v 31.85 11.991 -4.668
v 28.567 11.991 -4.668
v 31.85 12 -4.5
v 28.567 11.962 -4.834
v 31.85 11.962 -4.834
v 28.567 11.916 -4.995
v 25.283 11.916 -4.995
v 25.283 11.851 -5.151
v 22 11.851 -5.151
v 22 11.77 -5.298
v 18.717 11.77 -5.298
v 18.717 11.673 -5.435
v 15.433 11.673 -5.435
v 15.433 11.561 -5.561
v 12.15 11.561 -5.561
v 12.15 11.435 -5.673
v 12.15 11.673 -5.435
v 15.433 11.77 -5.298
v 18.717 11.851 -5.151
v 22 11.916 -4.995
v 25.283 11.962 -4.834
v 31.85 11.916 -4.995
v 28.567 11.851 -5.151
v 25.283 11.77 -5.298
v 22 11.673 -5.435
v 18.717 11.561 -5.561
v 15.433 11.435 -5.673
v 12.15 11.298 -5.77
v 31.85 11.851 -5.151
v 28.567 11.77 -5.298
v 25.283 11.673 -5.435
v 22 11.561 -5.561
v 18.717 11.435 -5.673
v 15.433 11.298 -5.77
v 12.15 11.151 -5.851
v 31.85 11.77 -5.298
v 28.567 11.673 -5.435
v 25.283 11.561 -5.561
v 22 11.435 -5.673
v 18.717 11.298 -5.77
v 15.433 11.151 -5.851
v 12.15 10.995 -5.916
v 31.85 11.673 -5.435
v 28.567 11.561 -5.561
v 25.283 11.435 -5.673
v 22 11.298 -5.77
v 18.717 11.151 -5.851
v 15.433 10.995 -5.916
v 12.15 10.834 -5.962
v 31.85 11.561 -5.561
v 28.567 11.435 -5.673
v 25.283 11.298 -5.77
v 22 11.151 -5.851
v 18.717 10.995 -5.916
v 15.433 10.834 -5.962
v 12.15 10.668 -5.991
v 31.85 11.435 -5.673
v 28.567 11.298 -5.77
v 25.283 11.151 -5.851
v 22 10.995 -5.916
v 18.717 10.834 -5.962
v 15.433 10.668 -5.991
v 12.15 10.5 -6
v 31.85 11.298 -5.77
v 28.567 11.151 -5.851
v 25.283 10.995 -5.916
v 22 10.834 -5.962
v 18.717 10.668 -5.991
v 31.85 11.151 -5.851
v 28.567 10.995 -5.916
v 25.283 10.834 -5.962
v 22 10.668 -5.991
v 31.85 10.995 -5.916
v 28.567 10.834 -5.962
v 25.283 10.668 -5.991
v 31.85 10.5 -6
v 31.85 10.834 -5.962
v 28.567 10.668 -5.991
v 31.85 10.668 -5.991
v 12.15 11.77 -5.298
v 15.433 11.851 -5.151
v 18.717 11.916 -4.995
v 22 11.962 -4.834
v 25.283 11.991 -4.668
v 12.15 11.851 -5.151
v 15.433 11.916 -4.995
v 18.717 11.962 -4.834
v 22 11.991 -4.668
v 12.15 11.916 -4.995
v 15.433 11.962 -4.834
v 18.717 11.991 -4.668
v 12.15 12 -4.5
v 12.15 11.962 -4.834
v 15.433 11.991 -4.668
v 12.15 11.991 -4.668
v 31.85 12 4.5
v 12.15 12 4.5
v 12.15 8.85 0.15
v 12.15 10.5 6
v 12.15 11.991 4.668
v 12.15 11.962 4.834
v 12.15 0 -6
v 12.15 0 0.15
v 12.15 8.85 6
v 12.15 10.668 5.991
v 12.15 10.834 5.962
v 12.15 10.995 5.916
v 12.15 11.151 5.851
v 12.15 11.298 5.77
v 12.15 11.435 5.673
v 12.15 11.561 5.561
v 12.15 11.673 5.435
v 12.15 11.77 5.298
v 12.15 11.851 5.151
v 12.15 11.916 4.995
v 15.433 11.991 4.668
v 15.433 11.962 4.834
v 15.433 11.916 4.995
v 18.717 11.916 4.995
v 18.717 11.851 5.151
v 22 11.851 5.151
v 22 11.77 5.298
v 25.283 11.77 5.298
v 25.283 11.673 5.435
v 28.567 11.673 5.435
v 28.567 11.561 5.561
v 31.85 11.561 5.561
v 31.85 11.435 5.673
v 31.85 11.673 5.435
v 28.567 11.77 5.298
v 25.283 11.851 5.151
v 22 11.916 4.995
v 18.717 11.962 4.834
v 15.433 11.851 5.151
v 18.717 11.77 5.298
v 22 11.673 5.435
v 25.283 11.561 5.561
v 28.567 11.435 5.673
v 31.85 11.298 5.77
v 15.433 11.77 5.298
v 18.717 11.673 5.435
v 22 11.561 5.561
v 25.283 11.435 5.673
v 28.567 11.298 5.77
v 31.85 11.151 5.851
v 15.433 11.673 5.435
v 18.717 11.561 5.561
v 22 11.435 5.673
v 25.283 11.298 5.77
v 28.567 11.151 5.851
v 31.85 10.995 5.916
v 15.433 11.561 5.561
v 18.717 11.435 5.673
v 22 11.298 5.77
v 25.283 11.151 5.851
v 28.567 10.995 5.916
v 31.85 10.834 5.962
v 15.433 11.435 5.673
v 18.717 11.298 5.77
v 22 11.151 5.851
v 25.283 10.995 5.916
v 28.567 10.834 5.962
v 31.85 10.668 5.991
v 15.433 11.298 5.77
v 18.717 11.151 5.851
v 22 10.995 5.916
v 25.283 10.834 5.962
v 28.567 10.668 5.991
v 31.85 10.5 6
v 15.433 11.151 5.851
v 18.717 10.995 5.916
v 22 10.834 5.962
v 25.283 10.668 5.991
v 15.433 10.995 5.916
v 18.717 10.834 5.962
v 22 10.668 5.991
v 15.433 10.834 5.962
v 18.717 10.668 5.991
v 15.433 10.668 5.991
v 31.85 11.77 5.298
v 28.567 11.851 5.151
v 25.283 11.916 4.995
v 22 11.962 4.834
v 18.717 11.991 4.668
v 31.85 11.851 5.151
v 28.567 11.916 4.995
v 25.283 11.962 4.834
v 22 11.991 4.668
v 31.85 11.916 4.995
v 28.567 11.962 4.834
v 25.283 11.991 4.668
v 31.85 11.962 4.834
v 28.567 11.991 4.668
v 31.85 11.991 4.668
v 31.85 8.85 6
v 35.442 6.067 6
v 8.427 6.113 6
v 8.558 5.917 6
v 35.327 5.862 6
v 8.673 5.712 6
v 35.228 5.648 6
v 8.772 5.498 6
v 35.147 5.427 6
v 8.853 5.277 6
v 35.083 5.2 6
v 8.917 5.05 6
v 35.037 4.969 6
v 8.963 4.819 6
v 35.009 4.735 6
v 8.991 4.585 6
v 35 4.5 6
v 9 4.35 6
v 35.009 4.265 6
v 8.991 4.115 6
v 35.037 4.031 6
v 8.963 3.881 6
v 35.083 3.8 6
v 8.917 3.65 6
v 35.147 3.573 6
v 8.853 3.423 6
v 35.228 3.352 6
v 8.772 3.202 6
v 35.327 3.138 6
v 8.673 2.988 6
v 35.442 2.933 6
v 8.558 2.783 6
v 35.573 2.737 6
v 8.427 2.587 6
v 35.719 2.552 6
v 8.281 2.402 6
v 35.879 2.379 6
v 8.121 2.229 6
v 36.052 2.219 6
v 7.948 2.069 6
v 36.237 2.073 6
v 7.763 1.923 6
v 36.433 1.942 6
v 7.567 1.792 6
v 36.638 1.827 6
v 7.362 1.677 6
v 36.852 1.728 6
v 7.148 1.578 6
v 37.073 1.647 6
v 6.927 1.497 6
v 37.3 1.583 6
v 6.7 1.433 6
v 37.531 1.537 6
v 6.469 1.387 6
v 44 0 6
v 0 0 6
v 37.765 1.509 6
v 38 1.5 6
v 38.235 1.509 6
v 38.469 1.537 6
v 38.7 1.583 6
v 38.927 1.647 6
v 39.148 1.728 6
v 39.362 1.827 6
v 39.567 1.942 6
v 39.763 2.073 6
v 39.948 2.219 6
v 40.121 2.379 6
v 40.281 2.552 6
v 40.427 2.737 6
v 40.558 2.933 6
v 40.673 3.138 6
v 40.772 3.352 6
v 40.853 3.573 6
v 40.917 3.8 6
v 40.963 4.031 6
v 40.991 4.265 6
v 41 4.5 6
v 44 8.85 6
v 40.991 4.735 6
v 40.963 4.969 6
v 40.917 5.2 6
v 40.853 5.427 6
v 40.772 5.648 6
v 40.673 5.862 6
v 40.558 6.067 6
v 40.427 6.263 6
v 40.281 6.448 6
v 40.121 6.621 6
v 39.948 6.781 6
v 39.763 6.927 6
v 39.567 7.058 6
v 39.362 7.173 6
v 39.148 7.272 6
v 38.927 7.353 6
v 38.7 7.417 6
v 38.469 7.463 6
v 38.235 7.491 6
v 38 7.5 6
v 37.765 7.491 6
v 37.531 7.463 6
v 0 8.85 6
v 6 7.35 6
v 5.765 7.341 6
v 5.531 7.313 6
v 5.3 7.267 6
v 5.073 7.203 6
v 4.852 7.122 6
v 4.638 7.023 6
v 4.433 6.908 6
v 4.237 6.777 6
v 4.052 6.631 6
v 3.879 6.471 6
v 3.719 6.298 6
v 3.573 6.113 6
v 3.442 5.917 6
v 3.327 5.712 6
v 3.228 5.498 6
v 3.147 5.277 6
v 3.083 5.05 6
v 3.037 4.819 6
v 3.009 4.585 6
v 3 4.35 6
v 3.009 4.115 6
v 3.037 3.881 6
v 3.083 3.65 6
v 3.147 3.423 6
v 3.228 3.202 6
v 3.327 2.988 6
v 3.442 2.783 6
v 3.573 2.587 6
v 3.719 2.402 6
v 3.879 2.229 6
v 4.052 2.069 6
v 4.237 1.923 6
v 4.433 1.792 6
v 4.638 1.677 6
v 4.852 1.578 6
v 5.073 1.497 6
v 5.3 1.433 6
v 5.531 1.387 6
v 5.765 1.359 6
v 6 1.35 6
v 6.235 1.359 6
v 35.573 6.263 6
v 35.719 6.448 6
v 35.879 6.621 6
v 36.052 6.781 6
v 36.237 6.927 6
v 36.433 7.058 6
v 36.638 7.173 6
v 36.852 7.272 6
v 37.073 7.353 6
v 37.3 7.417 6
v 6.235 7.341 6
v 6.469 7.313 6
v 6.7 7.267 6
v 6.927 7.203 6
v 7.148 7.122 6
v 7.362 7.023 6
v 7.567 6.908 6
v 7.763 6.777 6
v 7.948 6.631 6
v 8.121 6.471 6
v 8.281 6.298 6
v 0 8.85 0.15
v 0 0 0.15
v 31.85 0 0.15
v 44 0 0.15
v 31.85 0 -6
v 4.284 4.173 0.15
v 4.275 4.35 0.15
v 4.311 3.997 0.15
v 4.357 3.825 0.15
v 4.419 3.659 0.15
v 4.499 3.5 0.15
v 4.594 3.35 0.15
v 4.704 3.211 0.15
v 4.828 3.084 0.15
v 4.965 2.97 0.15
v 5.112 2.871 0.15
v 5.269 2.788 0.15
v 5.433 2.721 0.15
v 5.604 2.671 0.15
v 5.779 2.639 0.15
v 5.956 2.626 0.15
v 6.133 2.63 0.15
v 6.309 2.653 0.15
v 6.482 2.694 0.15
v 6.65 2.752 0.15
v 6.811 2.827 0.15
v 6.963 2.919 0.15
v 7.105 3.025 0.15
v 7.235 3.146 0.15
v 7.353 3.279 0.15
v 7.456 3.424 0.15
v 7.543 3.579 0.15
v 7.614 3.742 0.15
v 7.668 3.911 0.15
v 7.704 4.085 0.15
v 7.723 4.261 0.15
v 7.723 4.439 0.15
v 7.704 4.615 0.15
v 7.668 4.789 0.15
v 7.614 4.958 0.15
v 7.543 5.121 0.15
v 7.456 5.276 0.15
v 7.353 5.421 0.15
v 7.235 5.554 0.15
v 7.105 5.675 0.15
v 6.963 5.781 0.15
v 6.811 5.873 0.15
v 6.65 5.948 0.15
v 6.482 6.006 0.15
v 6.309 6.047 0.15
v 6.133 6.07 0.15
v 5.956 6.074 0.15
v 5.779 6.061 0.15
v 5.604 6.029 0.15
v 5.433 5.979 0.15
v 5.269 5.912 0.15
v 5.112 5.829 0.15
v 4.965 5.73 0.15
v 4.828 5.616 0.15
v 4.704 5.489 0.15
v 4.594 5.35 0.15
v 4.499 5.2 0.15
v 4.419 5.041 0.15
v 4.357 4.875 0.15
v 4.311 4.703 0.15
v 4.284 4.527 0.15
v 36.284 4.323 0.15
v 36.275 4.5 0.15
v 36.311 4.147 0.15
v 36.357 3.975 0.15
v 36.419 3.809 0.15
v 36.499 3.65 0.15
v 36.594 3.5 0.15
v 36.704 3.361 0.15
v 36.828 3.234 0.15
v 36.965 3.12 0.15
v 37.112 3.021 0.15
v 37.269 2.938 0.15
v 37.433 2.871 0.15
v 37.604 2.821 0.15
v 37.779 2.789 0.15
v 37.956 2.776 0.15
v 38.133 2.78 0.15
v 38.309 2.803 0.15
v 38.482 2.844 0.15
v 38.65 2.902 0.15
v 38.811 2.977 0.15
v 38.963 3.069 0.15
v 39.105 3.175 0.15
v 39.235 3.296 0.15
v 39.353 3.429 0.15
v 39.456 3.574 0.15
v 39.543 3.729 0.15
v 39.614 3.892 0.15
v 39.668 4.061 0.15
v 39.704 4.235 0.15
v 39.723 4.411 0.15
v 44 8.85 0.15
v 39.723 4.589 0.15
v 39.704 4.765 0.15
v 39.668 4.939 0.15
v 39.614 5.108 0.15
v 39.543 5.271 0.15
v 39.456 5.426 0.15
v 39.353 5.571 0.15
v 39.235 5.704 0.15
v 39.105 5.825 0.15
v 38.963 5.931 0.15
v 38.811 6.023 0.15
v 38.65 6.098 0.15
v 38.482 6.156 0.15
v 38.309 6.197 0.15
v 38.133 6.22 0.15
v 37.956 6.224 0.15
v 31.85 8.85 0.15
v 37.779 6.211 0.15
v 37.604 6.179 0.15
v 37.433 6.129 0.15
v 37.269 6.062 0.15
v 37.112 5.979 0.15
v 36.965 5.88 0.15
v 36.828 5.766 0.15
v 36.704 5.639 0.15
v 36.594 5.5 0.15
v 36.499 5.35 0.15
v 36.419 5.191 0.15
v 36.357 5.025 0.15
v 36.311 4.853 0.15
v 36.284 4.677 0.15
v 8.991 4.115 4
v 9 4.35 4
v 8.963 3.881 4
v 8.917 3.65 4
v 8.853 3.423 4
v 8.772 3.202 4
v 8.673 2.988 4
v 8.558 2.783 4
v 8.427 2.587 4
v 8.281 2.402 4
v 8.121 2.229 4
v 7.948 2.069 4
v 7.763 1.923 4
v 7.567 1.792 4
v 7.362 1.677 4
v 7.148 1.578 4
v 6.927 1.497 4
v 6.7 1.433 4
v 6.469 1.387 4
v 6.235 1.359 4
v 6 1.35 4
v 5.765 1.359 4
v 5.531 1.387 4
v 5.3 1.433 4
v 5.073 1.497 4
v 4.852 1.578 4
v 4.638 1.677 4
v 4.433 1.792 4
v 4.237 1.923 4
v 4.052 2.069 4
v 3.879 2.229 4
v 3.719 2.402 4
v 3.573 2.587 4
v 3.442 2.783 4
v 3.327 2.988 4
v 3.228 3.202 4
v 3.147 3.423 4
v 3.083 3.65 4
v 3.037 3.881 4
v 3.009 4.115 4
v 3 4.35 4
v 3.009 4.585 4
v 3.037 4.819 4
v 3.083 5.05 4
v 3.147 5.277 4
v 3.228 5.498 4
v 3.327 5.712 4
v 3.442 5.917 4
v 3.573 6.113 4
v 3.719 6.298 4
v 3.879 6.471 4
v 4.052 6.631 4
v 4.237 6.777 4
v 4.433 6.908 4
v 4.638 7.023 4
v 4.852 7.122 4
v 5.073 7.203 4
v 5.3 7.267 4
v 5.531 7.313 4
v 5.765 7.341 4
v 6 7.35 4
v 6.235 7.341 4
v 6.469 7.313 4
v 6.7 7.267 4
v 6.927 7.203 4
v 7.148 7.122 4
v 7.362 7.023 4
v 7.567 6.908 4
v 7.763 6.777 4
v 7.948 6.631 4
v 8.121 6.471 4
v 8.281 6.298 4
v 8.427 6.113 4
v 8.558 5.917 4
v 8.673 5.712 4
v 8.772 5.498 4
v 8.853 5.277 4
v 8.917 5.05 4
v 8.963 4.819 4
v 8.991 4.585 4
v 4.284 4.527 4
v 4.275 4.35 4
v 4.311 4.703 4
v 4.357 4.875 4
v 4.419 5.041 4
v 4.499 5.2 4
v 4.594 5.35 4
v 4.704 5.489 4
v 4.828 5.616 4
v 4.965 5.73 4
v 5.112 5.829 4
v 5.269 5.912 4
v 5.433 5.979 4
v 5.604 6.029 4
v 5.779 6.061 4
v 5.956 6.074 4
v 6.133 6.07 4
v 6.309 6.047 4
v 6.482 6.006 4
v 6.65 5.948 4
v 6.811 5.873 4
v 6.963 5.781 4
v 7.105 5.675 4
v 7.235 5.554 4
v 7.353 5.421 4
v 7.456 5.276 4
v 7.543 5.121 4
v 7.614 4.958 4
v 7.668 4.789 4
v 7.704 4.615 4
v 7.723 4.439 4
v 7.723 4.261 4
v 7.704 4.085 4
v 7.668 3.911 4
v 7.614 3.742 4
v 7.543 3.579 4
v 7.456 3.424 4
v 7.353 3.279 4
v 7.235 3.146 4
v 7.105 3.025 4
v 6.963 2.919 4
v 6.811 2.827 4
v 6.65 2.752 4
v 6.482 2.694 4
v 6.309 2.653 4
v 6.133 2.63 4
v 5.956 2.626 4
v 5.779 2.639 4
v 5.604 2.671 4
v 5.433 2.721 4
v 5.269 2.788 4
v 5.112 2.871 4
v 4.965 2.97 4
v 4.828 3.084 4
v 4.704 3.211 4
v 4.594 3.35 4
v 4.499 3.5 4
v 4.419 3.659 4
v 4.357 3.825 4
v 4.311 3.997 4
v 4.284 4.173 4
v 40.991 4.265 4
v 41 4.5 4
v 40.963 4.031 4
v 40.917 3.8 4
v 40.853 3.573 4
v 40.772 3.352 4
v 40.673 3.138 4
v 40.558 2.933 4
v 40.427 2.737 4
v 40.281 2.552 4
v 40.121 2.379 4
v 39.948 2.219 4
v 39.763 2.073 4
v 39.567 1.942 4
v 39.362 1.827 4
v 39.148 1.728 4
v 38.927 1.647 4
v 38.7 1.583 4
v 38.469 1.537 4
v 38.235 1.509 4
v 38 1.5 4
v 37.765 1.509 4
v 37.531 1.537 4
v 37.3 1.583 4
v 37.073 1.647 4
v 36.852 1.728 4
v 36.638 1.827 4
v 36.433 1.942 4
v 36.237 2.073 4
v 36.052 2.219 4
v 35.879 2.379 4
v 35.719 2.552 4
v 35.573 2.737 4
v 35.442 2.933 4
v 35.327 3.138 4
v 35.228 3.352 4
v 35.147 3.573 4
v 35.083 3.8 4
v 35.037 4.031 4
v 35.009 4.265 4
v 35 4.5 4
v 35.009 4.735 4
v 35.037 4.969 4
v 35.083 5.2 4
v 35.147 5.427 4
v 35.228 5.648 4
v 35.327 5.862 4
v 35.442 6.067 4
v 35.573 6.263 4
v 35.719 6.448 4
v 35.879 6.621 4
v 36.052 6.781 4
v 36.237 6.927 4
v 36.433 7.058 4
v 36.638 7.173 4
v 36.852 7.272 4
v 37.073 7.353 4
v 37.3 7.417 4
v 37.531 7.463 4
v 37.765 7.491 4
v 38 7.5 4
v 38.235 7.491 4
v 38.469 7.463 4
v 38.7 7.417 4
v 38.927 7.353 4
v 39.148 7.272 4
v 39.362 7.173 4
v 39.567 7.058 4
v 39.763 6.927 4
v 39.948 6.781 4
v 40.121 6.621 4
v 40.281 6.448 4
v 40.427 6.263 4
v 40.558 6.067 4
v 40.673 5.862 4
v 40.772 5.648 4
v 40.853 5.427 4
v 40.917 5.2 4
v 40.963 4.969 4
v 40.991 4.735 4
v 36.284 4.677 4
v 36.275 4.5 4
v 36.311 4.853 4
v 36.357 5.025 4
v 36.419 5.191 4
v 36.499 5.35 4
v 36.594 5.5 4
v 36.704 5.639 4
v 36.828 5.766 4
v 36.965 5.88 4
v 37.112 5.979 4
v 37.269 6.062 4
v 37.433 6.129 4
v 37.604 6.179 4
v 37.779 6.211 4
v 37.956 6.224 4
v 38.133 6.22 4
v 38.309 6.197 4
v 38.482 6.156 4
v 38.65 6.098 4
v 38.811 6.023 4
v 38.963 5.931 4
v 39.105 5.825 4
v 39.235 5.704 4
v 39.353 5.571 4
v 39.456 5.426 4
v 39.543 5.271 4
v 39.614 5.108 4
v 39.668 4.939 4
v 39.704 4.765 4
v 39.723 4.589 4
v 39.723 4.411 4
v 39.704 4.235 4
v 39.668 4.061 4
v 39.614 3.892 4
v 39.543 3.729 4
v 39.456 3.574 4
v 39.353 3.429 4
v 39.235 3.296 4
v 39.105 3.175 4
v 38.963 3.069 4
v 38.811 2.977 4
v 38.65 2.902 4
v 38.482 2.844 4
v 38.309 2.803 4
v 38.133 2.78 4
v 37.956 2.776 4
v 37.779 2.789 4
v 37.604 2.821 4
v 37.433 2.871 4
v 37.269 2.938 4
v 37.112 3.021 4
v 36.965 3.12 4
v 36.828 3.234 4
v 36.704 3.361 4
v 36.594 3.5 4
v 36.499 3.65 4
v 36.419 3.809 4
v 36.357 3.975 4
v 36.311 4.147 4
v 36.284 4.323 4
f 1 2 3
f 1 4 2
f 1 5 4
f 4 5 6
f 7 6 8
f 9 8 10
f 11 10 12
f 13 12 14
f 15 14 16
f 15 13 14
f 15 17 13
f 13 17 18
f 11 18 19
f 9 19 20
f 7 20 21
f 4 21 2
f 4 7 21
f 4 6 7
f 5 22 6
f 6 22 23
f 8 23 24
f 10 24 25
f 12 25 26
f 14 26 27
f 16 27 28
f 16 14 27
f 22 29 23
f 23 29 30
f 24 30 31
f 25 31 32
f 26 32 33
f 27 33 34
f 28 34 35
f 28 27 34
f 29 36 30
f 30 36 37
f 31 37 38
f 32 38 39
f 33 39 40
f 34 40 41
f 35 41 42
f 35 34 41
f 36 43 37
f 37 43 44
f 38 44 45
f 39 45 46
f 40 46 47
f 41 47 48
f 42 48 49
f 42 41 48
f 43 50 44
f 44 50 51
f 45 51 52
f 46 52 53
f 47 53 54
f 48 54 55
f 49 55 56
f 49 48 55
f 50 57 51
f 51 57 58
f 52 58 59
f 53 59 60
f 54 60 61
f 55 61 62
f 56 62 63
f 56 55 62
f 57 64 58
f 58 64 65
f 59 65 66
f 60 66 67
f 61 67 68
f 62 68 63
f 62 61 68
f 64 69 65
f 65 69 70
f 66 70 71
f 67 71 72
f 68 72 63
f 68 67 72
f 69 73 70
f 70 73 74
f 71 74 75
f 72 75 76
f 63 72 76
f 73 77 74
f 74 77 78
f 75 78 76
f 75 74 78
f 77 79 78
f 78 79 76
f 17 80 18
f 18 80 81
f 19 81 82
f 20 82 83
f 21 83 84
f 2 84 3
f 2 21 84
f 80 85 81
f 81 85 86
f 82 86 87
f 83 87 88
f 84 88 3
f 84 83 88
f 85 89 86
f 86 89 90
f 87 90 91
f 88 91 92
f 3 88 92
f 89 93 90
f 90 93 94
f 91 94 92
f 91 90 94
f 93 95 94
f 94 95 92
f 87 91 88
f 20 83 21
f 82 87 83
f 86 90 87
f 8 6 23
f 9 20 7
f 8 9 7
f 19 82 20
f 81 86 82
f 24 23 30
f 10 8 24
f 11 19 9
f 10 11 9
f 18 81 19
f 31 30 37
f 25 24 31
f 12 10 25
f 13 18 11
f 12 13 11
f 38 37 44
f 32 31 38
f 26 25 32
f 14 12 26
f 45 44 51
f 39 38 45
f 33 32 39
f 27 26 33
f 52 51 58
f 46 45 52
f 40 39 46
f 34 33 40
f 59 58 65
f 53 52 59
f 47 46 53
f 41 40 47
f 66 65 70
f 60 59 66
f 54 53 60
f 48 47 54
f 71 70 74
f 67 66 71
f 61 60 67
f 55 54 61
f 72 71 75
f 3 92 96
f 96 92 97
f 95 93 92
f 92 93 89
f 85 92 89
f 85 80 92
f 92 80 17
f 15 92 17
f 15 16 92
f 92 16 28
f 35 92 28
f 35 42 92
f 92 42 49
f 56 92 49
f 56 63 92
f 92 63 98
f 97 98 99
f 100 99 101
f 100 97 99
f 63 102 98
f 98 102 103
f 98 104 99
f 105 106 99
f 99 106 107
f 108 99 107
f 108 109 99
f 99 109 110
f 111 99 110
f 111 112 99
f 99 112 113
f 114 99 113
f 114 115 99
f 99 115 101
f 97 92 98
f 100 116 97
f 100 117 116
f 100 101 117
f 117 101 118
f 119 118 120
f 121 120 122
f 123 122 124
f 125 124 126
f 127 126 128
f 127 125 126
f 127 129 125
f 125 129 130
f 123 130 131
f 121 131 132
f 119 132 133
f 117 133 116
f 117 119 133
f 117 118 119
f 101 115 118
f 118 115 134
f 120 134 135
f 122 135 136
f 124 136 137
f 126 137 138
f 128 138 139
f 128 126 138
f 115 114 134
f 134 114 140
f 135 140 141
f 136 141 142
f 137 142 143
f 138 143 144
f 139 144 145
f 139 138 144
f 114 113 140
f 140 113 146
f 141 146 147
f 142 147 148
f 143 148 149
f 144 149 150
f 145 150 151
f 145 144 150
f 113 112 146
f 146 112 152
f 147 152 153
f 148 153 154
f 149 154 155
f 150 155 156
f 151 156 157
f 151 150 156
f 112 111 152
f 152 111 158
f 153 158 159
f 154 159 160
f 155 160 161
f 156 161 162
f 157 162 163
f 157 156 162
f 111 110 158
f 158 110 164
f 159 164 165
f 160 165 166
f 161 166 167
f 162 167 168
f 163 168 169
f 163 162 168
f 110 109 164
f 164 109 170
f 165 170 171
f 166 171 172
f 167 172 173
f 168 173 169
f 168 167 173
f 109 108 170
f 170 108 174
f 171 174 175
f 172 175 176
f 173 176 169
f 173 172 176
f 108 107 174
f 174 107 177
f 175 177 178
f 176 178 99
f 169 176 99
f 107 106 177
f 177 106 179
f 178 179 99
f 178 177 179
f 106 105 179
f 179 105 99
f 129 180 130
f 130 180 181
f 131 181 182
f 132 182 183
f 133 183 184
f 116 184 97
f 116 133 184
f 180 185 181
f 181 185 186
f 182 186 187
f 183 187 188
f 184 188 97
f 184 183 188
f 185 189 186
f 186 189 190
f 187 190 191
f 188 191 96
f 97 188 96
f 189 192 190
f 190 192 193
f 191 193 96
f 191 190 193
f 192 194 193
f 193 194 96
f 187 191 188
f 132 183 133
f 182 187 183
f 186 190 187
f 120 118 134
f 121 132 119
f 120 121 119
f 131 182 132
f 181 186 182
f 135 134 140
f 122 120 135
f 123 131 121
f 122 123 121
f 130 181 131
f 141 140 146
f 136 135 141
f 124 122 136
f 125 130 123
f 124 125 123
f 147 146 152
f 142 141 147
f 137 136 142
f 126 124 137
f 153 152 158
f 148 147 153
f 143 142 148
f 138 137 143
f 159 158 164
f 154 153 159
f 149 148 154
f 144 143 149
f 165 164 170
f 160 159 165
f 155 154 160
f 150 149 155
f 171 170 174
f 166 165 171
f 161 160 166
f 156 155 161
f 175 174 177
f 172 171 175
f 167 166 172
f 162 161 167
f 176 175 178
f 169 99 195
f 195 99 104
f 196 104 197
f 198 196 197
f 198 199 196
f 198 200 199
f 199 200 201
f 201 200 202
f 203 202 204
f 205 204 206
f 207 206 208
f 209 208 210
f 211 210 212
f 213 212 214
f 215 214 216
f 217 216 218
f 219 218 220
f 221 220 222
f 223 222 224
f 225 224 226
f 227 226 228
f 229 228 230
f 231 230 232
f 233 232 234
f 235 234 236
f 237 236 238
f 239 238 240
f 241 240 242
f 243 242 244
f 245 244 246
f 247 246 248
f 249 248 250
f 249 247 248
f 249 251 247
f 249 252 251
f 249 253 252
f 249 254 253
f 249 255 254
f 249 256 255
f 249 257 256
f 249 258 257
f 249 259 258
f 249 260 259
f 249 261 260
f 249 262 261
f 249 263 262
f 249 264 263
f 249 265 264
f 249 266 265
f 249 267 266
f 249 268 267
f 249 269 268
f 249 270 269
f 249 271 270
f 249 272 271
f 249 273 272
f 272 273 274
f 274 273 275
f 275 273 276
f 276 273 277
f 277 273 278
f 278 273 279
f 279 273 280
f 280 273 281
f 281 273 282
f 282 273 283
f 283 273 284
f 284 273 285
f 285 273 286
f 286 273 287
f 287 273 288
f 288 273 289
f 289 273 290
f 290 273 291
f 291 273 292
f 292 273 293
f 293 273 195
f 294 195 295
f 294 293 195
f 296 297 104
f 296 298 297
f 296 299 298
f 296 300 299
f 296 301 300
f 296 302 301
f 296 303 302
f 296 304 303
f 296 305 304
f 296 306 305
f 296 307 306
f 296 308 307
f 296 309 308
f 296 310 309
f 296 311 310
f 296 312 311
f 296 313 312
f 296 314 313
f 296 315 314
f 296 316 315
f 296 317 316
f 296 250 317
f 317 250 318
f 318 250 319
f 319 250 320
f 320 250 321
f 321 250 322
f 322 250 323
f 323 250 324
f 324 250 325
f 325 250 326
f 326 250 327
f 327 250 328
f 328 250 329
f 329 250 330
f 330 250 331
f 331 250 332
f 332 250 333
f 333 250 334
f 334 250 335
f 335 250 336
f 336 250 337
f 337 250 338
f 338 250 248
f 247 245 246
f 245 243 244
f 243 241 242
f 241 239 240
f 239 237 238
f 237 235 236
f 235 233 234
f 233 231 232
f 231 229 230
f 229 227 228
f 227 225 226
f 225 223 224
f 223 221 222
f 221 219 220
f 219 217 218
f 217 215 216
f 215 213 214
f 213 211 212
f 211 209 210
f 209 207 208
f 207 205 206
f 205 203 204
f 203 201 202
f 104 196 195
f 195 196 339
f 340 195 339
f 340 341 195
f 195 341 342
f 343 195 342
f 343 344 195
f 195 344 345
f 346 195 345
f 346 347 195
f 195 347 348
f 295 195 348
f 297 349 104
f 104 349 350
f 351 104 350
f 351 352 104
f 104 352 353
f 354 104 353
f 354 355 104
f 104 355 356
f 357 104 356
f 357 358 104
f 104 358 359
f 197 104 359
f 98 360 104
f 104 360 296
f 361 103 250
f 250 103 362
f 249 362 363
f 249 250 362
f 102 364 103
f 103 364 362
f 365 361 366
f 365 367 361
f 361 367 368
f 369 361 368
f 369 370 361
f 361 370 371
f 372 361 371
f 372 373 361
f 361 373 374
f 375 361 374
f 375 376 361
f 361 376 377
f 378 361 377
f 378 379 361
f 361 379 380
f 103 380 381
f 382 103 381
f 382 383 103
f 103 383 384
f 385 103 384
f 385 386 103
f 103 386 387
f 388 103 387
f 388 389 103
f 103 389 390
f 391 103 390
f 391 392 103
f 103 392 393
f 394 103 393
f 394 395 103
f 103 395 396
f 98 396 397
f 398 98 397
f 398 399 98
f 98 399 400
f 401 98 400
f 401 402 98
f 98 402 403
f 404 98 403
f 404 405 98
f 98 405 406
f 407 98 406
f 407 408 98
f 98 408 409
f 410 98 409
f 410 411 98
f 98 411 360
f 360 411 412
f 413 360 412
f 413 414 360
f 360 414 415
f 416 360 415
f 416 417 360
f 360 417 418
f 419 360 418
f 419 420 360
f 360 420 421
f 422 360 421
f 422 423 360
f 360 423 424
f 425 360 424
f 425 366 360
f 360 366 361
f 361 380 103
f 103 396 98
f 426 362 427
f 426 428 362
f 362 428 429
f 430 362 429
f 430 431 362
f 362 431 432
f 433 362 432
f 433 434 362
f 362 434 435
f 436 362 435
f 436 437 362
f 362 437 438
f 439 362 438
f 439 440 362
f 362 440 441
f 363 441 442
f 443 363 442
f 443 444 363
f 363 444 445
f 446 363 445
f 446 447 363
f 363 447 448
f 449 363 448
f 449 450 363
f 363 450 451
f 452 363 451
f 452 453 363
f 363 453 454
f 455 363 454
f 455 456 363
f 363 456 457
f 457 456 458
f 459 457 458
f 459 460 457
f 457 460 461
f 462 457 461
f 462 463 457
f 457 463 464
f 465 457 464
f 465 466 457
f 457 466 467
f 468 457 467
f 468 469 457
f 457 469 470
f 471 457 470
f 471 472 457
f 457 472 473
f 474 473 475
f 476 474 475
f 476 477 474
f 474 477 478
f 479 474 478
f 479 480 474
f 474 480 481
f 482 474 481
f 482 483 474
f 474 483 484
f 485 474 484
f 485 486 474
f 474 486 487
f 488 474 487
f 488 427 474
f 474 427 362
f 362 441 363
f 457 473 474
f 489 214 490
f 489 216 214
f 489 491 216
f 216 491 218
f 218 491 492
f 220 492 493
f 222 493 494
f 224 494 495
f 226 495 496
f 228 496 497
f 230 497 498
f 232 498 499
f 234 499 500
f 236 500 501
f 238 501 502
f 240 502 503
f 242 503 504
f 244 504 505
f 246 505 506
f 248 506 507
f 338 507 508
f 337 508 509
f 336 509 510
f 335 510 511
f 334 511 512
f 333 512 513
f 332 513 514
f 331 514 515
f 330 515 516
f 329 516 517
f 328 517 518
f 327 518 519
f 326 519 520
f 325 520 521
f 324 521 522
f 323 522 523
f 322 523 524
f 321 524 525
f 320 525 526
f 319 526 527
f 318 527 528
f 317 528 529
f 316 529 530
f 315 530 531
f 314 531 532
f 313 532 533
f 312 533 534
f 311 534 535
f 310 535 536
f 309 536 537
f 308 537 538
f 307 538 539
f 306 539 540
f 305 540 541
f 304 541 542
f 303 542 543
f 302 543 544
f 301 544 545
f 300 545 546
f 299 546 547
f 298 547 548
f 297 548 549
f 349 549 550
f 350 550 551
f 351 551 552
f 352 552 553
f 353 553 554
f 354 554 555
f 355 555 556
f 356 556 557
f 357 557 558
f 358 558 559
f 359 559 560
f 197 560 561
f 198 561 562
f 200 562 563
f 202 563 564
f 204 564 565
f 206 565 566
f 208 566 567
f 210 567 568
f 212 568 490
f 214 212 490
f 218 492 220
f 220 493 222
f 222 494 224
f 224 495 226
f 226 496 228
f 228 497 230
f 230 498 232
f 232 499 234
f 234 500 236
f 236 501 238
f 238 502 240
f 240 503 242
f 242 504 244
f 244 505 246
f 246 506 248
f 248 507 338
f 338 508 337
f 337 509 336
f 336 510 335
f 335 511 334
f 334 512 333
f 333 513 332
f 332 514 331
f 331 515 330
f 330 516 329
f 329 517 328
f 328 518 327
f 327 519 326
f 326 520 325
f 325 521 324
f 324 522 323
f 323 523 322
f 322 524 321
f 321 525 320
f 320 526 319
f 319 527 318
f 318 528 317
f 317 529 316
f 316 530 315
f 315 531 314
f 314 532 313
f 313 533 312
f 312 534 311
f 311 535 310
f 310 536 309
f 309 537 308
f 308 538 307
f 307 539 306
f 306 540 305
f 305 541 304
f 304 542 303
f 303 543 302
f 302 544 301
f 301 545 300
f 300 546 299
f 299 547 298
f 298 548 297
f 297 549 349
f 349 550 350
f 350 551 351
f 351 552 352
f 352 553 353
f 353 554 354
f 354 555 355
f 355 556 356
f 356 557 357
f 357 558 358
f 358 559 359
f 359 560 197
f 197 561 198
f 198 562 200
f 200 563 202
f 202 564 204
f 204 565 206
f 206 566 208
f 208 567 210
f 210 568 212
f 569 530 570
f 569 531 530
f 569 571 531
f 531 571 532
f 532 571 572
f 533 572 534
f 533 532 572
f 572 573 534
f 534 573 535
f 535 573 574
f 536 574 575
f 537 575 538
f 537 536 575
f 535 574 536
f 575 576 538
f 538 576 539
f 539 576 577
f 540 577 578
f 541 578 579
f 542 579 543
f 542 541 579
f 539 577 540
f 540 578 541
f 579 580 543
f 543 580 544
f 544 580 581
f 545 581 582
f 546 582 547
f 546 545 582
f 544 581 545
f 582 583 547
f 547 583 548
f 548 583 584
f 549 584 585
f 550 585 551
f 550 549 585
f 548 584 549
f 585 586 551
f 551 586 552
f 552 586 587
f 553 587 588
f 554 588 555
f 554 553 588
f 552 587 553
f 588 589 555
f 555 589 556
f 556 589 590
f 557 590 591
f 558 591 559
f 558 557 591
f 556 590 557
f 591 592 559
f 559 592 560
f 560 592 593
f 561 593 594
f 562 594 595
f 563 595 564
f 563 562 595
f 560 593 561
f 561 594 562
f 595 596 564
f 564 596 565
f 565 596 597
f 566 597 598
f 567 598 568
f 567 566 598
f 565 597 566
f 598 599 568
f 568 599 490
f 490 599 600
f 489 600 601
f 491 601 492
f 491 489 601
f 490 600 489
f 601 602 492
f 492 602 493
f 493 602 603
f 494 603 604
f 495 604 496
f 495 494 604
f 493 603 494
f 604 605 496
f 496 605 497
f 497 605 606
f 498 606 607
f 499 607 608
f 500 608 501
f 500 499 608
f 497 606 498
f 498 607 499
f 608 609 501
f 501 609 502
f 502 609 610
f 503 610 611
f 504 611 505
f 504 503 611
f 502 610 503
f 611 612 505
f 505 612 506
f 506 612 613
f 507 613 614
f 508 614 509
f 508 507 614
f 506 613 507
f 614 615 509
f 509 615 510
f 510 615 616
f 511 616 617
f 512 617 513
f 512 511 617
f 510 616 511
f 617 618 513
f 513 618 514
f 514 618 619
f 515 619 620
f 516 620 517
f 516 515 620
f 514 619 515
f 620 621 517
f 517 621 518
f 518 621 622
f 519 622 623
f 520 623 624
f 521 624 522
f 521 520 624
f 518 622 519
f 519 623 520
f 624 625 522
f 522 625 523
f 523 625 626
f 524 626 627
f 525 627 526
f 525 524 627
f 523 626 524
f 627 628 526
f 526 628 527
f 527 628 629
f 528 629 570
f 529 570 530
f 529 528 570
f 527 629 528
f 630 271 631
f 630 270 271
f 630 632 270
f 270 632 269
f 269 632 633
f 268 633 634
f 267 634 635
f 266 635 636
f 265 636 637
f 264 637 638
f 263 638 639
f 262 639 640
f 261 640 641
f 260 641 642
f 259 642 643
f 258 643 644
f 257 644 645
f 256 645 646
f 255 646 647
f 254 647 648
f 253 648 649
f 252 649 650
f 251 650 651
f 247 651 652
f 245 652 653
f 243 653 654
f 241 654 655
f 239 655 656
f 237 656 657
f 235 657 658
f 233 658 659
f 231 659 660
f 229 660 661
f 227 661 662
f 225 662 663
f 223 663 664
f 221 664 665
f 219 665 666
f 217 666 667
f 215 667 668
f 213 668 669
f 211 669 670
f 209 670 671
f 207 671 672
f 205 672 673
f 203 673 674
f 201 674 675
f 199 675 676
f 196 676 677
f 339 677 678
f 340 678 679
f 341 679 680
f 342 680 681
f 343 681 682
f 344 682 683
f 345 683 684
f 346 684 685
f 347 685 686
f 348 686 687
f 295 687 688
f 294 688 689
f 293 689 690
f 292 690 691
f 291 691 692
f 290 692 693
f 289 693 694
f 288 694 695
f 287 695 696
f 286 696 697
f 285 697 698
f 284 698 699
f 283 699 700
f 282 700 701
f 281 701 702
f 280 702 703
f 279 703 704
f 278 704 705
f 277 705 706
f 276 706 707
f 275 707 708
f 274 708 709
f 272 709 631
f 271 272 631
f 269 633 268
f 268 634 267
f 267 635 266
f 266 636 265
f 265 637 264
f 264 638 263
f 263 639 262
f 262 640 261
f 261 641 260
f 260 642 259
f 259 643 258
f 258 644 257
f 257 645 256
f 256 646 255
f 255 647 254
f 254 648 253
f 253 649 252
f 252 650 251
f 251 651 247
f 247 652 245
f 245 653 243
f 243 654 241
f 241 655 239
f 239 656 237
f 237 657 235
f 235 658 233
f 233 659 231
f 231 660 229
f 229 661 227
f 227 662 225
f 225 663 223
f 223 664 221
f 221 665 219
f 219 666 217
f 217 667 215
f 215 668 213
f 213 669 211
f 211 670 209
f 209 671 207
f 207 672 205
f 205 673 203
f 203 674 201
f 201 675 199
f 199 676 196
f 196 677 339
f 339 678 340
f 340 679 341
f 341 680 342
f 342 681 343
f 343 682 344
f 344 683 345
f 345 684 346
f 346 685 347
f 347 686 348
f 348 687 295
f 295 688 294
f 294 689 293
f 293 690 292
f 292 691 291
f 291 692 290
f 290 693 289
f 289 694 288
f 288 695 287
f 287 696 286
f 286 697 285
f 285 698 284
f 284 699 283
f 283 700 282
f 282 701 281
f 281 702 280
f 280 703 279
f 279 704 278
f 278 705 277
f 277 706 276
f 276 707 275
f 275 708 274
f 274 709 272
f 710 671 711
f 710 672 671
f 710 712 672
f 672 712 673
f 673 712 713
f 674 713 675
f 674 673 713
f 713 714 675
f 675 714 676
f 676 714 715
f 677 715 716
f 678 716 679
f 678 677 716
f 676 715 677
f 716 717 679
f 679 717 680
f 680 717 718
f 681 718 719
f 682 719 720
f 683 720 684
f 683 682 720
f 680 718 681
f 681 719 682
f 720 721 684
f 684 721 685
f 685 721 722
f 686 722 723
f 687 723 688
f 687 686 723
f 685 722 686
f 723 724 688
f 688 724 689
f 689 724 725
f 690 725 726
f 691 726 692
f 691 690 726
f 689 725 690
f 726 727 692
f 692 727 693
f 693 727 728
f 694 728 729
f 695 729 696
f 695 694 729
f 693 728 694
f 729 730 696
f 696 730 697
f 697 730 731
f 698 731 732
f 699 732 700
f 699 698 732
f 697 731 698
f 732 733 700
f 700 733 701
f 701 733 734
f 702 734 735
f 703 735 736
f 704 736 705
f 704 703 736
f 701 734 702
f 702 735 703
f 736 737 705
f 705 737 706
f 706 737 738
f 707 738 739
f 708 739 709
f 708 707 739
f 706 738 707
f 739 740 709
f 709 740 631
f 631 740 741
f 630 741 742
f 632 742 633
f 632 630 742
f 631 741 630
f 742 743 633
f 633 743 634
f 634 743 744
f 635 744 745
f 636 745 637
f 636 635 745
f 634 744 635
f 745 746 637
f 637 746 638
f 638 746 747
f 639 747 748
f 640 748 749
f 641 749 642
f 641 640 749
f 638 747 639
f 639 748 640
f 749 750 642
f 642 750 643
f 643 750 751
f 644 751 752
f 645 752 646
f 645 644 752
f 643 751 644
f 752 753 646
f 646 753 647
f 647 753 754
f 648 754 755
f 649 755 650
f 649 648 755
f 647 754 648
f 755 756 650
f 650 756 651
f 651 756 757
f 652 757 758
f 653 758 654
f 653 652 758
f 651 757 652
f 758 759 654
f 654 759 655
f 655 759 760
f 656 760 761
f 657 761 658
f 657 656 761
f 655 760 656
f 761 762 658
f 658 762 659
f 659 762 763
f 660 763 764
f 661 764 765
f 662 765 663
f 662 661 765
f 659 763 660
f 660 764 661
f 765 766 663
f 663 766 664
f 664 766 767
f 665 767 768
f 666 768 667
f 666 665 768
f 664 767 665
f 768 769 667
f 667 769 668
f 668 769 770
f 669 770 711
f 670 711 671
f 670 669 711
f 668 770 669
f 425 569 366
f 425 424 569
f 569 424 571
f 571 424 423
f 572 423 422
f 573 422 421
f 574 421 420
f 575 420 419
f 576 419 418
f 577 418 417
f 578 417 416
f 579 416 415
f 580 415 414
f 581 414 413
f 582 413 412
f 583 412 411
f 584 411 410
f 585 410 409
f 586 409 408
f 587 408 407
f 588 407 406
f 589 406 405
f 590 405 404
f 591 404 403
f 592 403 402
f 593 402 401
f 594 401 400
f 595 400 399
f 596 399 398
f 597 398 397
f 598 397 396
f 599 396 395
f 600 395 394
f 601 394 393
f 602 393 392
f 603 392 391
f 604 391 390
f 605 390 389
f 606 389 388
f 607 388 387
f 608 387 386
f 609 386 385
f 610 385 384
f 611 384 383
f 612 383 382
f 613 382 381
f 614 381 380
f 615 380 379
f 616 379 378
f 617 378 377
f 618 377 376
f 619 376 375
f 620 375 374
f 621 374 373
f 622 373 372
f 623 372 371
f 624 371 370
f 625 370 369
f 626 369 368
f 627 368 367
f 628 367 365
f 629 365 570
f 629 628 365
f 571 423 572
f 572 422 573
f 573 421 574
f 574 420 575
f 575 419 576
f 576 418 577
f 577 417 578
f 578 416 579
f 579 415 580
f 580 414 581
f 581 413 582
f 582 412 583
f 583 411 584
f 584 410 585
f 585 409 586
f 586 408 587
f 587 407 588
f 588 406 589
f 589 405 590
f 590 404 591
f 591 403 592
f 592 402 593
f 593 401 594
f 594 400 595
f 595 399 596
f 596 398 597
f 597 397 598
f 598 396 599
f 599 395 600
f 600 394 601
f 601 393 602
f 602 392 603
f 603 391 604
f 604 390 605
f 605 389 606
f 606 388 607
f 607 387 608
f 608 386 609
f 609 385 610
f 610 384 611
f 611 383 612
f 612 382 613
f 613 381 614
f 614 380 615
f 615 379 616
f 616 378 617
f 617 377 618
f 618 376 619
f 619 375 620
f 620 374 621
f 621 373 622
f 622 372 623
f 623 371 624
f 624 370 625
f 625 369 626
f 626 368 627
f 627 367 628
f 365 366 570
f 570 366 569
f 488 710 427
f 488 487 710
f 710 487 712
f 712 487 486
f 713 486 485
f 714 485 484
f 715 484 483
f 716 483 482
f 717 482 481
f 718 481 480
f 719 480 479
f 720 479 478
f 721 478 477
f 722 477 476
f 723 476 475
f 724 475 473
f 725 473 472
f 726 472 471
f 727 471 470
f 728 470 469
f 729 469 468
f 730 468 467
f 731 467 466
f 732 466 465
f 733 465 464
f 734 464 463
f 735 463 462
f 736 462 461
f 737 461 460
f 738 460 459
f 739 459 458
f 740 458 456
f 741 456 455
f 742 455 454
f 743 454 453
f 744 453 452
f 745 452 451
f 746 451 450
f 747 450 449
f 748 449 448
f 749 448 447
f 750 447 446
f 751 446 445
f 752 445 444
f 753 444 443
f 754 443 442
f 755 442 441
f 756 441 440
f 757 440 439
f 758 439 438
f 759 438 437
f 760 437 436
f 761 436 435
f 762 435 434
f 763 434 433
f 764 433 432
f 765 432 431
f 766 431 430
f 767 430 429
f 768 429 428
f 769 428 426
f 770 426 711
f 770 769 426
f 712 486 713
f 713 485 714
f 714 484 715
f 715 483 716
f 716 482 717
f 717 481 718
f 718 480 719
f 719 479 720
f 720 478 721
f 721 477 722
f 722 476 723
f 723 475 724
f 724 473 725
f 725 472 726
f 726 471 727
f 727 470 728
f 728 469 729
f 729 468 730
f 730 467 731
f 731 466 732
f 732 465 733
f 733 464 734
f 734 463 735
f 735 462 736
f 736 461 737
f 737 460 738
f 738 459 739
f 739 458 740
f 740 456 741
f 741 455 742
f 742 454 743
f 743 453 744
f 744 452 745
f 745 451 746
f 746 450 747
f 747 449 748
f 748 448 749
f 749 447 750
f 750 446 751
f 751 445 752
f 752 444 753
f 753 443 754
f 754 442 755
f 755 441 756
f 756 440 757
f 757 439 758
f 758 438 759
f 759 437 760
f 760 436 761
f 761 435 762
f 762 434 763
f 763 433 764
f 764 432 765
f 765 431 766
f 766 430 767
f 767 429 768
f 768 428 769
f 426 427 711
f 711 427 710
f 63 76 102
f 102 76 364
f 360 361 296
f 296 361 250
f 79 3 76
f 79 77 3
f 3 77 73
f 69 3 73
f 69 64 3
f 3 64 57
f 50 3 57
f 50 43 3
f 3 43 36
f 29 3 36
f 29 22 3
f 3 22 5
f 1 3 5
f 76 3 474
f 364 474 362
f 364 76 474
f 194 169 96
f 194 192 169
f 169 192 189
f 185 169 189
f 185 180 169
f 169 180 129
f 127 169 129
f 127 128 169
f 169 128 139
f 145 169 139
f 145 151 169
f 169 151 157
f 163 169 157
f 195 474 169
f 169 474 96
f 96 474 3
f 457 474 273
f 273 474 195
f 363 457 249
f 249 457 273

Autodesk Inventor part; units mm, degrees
ref_plane "YZ Plane" through (0, 0, 0) normal (1, 0, 0) x (0, 1, 0)
ref_plane "XZ Plane" through (0, 0, 0) normal (0, 1, 0) x (-1, 0, 0)
ref_plane "XY Plane" through (0, 0, 0) normal (0, 0, 1) x (1, 0, 0)
sketch "Sketch1" plane through (0, 0, 0) normal (0, 0, 1) x (1, 0, 0)
  line L0 (0, 0) -> (44, 0)
  line L1 (44, 0) -> (44, 8.85)
  line L2 (31.85, 12) -> (12.15, 12)
  line L3 (0, 8.85) -> (0, 0)
  line L4 (12.15, 12) -> (12.15, 8.85)
  line L5 (12.15, 8.85) -> (0, 8.85)
  line L6 (31.85, 12) -> (31.85, 8.85)
  line L7 (31.85, 8.85) -> (44, 8.85)
  dimension "d6" = 44
  dimension "d7" = 3.15
  dimension "d8" = 3.15
  dimension "d9" = 12.15
  dimension "d10" = 12.15
  dimension "d11" = 8.85
  dimension "d12" = 8.85
  dimension "d13" = 12
extrude "Extrusion1" add sketch "Sketch1" along normal blind 6
sketch "Sketch2" plane through (0, 0, 0) normal (0, 0, -1) x (-1, 0, 0)
  line L0 (-31.85, 12) -> (-12.15, 12) projected
  line L1 (0, 0) -> (-44, 0) projected
  line L2 (-31.85, 12) -> (-12, 12)
  line L3 (-12, 12) -> (-12, 0)
  line L4 (-12, 0) -> (-31.85, 0)
  line L5 (-31.85, 0) -> (-31.85, 12)
extrude "Extrusion2" add sketch "Sketch2" along normal blind 6
sketch "Sketch3" plane through (0, 0, 0) normal (0, 0, -1) x (-1, 0, 0)
  circle A0 centre (-6, 4.35) radius 1.725
  line L0 (-12, 8.85) -> (0, 8.85) projected
  line L1 (0, 8.85) -> (0, 0) projected
  circle A1 centre (-38, 4.5) radius 1.725
  line L2 (-31.85, 0) -> (-44, 0) projected
  line L3 (-44, 0) -> (-44, 8.85) projected
  point P0 (-12, 9)
  dimension "d18" = 3.45
  dimension "d19" = 4.5
  dimension "d20" = 6
  dimension "d21" = 3.45
  dimension "d22" = 4.5
  dimension "d23" = 6
extrude "Extrusion3" cut sketch "Sketch3" against normal blind 4
sketch "Sketch4" plane through (0, 0, 6) normal (0, 0, 1) x (1, 0, 0)
  circle A0 centre (6, 4.35) radius 3
  line L0 (12.15, 8.85) -> (0, 8.85) projected
  line L1 (0, 8.85) -> (0, 0) projected
  circle A1 centre (38, 4.5) radius 1.725 projected
  circle A2 centre (38, 4.5) radius 3
  dimension "d26" = 6
  dimension "d27" = 4.5
  dimension "d28" = 6
  dimension "d29" = 6
extrude "Extrusion4" cut sketch "Sketch4" against normal blind 2 contours A0 | A1 | A2
sketch "Sketch5" plane through (31.85, 0, 0) normal (0, -1, 0) x (1, 0, 0)
  point P0 (-31.85, 0)
sketch "Sketch6" plane through (0, 0, 0) normal (0, 0, -1) x (-1, 0, 0)
  line L0 (0, 0) -> (-44, 0) projected
  line L1 (-12.15, 8.85) -> (0, 8.85) projected
  line L2 (0, 0) -> (0, 8.85)
  line L3 (-12.15, 8.85) -> (-12, 8.85) projected
  line L4 (0, 8.85) -> (-12, 8.85)
  line L5 (-12, 0) -> (-12, 12) projected
  line L6 (-12, 8.85) -> (-12, 0)
  line L7 (-12, 0) -> (0, 0)
  line L8 (-44, 0) -> (-44, 8.85) projected
  line L9 (-44, 0) -> (-31.85, 0)
  line L10 (-31.85, 0) -> (-31.85, 8.85) projected
  line L11 (-31.85, 0) -> (-31.85, 8.85)
  line L12 (-31.85, 8.85) -> (-44, 8.85)
  line L13 (-44, 8.85) -> (-44, 0)
  dimension "d33" = 12.15
extrude "Extrusion5" cut sketch "Sketch6" against normal blind 0.15
sketch "Sketch7" plane through (12, 8.85, 0) normal (-1, 0, 0) x (0, 0, 1)
  line L0 (0, 3.15) -> (0, 0) projected
  line L1 (0, 3.15) -> (0, 0)
  line L2 (0.15, 0) -> (6, 0) projected
  line L3 (0, 0) -> (0.15, 0)
  line L4 (0.15, 0) -> (0.15, -8.85) projected
  line L5 (0.15, 0) -> (0.15, -8.85)
  line L6 (0.15, -8.85) -> (-6, -8.85) projected
  line L7 (0.15, -8.85) -> (-6, -8.85)
  line L8 (-6, -8.85) -> (-6, 3.15)
  line L9 (0, 3.15) -> (6, 3.15) projected
  line L10 (-6, 3.15) -> (0, 3.15)
  point P0 (0, -8.85)
sketch "Sketch8" plane through (12.15, 12, 6) normal (0, 1, 0) x (1, 0, 0)
  line L0 (0, 6) -> (0, 0) projected
  line L1 (19.7, 12) -> (-0.15, 12) projected
  line L2 (0, 6) -> (-0.15, 6)
  line L3 (-0.15, 6) -> (-0.15, 12)
  line L4 (-0.15, 12) -> (0, 12)
  line L5 (0, 12) -> (0, 6)
  point P0 (-12.15, 6)
extrude "Extrusion6" cut sketch "Sketch7" against normal blind 0.15
fillet "Fillet2" radius 1.5 2 edges at (22, 12, 6) (22, 12, -6)
sketch "Sketch9" plane through (0, 0, 6) normal (0, 0, 1) x (1, 0, 0)
  point P0 (0, 0)
equation "\"d8\" = d7"
equation "\"d10\" = d9"
equation "\"d12\" = d11"
properties part number "beam44mmVer2"
